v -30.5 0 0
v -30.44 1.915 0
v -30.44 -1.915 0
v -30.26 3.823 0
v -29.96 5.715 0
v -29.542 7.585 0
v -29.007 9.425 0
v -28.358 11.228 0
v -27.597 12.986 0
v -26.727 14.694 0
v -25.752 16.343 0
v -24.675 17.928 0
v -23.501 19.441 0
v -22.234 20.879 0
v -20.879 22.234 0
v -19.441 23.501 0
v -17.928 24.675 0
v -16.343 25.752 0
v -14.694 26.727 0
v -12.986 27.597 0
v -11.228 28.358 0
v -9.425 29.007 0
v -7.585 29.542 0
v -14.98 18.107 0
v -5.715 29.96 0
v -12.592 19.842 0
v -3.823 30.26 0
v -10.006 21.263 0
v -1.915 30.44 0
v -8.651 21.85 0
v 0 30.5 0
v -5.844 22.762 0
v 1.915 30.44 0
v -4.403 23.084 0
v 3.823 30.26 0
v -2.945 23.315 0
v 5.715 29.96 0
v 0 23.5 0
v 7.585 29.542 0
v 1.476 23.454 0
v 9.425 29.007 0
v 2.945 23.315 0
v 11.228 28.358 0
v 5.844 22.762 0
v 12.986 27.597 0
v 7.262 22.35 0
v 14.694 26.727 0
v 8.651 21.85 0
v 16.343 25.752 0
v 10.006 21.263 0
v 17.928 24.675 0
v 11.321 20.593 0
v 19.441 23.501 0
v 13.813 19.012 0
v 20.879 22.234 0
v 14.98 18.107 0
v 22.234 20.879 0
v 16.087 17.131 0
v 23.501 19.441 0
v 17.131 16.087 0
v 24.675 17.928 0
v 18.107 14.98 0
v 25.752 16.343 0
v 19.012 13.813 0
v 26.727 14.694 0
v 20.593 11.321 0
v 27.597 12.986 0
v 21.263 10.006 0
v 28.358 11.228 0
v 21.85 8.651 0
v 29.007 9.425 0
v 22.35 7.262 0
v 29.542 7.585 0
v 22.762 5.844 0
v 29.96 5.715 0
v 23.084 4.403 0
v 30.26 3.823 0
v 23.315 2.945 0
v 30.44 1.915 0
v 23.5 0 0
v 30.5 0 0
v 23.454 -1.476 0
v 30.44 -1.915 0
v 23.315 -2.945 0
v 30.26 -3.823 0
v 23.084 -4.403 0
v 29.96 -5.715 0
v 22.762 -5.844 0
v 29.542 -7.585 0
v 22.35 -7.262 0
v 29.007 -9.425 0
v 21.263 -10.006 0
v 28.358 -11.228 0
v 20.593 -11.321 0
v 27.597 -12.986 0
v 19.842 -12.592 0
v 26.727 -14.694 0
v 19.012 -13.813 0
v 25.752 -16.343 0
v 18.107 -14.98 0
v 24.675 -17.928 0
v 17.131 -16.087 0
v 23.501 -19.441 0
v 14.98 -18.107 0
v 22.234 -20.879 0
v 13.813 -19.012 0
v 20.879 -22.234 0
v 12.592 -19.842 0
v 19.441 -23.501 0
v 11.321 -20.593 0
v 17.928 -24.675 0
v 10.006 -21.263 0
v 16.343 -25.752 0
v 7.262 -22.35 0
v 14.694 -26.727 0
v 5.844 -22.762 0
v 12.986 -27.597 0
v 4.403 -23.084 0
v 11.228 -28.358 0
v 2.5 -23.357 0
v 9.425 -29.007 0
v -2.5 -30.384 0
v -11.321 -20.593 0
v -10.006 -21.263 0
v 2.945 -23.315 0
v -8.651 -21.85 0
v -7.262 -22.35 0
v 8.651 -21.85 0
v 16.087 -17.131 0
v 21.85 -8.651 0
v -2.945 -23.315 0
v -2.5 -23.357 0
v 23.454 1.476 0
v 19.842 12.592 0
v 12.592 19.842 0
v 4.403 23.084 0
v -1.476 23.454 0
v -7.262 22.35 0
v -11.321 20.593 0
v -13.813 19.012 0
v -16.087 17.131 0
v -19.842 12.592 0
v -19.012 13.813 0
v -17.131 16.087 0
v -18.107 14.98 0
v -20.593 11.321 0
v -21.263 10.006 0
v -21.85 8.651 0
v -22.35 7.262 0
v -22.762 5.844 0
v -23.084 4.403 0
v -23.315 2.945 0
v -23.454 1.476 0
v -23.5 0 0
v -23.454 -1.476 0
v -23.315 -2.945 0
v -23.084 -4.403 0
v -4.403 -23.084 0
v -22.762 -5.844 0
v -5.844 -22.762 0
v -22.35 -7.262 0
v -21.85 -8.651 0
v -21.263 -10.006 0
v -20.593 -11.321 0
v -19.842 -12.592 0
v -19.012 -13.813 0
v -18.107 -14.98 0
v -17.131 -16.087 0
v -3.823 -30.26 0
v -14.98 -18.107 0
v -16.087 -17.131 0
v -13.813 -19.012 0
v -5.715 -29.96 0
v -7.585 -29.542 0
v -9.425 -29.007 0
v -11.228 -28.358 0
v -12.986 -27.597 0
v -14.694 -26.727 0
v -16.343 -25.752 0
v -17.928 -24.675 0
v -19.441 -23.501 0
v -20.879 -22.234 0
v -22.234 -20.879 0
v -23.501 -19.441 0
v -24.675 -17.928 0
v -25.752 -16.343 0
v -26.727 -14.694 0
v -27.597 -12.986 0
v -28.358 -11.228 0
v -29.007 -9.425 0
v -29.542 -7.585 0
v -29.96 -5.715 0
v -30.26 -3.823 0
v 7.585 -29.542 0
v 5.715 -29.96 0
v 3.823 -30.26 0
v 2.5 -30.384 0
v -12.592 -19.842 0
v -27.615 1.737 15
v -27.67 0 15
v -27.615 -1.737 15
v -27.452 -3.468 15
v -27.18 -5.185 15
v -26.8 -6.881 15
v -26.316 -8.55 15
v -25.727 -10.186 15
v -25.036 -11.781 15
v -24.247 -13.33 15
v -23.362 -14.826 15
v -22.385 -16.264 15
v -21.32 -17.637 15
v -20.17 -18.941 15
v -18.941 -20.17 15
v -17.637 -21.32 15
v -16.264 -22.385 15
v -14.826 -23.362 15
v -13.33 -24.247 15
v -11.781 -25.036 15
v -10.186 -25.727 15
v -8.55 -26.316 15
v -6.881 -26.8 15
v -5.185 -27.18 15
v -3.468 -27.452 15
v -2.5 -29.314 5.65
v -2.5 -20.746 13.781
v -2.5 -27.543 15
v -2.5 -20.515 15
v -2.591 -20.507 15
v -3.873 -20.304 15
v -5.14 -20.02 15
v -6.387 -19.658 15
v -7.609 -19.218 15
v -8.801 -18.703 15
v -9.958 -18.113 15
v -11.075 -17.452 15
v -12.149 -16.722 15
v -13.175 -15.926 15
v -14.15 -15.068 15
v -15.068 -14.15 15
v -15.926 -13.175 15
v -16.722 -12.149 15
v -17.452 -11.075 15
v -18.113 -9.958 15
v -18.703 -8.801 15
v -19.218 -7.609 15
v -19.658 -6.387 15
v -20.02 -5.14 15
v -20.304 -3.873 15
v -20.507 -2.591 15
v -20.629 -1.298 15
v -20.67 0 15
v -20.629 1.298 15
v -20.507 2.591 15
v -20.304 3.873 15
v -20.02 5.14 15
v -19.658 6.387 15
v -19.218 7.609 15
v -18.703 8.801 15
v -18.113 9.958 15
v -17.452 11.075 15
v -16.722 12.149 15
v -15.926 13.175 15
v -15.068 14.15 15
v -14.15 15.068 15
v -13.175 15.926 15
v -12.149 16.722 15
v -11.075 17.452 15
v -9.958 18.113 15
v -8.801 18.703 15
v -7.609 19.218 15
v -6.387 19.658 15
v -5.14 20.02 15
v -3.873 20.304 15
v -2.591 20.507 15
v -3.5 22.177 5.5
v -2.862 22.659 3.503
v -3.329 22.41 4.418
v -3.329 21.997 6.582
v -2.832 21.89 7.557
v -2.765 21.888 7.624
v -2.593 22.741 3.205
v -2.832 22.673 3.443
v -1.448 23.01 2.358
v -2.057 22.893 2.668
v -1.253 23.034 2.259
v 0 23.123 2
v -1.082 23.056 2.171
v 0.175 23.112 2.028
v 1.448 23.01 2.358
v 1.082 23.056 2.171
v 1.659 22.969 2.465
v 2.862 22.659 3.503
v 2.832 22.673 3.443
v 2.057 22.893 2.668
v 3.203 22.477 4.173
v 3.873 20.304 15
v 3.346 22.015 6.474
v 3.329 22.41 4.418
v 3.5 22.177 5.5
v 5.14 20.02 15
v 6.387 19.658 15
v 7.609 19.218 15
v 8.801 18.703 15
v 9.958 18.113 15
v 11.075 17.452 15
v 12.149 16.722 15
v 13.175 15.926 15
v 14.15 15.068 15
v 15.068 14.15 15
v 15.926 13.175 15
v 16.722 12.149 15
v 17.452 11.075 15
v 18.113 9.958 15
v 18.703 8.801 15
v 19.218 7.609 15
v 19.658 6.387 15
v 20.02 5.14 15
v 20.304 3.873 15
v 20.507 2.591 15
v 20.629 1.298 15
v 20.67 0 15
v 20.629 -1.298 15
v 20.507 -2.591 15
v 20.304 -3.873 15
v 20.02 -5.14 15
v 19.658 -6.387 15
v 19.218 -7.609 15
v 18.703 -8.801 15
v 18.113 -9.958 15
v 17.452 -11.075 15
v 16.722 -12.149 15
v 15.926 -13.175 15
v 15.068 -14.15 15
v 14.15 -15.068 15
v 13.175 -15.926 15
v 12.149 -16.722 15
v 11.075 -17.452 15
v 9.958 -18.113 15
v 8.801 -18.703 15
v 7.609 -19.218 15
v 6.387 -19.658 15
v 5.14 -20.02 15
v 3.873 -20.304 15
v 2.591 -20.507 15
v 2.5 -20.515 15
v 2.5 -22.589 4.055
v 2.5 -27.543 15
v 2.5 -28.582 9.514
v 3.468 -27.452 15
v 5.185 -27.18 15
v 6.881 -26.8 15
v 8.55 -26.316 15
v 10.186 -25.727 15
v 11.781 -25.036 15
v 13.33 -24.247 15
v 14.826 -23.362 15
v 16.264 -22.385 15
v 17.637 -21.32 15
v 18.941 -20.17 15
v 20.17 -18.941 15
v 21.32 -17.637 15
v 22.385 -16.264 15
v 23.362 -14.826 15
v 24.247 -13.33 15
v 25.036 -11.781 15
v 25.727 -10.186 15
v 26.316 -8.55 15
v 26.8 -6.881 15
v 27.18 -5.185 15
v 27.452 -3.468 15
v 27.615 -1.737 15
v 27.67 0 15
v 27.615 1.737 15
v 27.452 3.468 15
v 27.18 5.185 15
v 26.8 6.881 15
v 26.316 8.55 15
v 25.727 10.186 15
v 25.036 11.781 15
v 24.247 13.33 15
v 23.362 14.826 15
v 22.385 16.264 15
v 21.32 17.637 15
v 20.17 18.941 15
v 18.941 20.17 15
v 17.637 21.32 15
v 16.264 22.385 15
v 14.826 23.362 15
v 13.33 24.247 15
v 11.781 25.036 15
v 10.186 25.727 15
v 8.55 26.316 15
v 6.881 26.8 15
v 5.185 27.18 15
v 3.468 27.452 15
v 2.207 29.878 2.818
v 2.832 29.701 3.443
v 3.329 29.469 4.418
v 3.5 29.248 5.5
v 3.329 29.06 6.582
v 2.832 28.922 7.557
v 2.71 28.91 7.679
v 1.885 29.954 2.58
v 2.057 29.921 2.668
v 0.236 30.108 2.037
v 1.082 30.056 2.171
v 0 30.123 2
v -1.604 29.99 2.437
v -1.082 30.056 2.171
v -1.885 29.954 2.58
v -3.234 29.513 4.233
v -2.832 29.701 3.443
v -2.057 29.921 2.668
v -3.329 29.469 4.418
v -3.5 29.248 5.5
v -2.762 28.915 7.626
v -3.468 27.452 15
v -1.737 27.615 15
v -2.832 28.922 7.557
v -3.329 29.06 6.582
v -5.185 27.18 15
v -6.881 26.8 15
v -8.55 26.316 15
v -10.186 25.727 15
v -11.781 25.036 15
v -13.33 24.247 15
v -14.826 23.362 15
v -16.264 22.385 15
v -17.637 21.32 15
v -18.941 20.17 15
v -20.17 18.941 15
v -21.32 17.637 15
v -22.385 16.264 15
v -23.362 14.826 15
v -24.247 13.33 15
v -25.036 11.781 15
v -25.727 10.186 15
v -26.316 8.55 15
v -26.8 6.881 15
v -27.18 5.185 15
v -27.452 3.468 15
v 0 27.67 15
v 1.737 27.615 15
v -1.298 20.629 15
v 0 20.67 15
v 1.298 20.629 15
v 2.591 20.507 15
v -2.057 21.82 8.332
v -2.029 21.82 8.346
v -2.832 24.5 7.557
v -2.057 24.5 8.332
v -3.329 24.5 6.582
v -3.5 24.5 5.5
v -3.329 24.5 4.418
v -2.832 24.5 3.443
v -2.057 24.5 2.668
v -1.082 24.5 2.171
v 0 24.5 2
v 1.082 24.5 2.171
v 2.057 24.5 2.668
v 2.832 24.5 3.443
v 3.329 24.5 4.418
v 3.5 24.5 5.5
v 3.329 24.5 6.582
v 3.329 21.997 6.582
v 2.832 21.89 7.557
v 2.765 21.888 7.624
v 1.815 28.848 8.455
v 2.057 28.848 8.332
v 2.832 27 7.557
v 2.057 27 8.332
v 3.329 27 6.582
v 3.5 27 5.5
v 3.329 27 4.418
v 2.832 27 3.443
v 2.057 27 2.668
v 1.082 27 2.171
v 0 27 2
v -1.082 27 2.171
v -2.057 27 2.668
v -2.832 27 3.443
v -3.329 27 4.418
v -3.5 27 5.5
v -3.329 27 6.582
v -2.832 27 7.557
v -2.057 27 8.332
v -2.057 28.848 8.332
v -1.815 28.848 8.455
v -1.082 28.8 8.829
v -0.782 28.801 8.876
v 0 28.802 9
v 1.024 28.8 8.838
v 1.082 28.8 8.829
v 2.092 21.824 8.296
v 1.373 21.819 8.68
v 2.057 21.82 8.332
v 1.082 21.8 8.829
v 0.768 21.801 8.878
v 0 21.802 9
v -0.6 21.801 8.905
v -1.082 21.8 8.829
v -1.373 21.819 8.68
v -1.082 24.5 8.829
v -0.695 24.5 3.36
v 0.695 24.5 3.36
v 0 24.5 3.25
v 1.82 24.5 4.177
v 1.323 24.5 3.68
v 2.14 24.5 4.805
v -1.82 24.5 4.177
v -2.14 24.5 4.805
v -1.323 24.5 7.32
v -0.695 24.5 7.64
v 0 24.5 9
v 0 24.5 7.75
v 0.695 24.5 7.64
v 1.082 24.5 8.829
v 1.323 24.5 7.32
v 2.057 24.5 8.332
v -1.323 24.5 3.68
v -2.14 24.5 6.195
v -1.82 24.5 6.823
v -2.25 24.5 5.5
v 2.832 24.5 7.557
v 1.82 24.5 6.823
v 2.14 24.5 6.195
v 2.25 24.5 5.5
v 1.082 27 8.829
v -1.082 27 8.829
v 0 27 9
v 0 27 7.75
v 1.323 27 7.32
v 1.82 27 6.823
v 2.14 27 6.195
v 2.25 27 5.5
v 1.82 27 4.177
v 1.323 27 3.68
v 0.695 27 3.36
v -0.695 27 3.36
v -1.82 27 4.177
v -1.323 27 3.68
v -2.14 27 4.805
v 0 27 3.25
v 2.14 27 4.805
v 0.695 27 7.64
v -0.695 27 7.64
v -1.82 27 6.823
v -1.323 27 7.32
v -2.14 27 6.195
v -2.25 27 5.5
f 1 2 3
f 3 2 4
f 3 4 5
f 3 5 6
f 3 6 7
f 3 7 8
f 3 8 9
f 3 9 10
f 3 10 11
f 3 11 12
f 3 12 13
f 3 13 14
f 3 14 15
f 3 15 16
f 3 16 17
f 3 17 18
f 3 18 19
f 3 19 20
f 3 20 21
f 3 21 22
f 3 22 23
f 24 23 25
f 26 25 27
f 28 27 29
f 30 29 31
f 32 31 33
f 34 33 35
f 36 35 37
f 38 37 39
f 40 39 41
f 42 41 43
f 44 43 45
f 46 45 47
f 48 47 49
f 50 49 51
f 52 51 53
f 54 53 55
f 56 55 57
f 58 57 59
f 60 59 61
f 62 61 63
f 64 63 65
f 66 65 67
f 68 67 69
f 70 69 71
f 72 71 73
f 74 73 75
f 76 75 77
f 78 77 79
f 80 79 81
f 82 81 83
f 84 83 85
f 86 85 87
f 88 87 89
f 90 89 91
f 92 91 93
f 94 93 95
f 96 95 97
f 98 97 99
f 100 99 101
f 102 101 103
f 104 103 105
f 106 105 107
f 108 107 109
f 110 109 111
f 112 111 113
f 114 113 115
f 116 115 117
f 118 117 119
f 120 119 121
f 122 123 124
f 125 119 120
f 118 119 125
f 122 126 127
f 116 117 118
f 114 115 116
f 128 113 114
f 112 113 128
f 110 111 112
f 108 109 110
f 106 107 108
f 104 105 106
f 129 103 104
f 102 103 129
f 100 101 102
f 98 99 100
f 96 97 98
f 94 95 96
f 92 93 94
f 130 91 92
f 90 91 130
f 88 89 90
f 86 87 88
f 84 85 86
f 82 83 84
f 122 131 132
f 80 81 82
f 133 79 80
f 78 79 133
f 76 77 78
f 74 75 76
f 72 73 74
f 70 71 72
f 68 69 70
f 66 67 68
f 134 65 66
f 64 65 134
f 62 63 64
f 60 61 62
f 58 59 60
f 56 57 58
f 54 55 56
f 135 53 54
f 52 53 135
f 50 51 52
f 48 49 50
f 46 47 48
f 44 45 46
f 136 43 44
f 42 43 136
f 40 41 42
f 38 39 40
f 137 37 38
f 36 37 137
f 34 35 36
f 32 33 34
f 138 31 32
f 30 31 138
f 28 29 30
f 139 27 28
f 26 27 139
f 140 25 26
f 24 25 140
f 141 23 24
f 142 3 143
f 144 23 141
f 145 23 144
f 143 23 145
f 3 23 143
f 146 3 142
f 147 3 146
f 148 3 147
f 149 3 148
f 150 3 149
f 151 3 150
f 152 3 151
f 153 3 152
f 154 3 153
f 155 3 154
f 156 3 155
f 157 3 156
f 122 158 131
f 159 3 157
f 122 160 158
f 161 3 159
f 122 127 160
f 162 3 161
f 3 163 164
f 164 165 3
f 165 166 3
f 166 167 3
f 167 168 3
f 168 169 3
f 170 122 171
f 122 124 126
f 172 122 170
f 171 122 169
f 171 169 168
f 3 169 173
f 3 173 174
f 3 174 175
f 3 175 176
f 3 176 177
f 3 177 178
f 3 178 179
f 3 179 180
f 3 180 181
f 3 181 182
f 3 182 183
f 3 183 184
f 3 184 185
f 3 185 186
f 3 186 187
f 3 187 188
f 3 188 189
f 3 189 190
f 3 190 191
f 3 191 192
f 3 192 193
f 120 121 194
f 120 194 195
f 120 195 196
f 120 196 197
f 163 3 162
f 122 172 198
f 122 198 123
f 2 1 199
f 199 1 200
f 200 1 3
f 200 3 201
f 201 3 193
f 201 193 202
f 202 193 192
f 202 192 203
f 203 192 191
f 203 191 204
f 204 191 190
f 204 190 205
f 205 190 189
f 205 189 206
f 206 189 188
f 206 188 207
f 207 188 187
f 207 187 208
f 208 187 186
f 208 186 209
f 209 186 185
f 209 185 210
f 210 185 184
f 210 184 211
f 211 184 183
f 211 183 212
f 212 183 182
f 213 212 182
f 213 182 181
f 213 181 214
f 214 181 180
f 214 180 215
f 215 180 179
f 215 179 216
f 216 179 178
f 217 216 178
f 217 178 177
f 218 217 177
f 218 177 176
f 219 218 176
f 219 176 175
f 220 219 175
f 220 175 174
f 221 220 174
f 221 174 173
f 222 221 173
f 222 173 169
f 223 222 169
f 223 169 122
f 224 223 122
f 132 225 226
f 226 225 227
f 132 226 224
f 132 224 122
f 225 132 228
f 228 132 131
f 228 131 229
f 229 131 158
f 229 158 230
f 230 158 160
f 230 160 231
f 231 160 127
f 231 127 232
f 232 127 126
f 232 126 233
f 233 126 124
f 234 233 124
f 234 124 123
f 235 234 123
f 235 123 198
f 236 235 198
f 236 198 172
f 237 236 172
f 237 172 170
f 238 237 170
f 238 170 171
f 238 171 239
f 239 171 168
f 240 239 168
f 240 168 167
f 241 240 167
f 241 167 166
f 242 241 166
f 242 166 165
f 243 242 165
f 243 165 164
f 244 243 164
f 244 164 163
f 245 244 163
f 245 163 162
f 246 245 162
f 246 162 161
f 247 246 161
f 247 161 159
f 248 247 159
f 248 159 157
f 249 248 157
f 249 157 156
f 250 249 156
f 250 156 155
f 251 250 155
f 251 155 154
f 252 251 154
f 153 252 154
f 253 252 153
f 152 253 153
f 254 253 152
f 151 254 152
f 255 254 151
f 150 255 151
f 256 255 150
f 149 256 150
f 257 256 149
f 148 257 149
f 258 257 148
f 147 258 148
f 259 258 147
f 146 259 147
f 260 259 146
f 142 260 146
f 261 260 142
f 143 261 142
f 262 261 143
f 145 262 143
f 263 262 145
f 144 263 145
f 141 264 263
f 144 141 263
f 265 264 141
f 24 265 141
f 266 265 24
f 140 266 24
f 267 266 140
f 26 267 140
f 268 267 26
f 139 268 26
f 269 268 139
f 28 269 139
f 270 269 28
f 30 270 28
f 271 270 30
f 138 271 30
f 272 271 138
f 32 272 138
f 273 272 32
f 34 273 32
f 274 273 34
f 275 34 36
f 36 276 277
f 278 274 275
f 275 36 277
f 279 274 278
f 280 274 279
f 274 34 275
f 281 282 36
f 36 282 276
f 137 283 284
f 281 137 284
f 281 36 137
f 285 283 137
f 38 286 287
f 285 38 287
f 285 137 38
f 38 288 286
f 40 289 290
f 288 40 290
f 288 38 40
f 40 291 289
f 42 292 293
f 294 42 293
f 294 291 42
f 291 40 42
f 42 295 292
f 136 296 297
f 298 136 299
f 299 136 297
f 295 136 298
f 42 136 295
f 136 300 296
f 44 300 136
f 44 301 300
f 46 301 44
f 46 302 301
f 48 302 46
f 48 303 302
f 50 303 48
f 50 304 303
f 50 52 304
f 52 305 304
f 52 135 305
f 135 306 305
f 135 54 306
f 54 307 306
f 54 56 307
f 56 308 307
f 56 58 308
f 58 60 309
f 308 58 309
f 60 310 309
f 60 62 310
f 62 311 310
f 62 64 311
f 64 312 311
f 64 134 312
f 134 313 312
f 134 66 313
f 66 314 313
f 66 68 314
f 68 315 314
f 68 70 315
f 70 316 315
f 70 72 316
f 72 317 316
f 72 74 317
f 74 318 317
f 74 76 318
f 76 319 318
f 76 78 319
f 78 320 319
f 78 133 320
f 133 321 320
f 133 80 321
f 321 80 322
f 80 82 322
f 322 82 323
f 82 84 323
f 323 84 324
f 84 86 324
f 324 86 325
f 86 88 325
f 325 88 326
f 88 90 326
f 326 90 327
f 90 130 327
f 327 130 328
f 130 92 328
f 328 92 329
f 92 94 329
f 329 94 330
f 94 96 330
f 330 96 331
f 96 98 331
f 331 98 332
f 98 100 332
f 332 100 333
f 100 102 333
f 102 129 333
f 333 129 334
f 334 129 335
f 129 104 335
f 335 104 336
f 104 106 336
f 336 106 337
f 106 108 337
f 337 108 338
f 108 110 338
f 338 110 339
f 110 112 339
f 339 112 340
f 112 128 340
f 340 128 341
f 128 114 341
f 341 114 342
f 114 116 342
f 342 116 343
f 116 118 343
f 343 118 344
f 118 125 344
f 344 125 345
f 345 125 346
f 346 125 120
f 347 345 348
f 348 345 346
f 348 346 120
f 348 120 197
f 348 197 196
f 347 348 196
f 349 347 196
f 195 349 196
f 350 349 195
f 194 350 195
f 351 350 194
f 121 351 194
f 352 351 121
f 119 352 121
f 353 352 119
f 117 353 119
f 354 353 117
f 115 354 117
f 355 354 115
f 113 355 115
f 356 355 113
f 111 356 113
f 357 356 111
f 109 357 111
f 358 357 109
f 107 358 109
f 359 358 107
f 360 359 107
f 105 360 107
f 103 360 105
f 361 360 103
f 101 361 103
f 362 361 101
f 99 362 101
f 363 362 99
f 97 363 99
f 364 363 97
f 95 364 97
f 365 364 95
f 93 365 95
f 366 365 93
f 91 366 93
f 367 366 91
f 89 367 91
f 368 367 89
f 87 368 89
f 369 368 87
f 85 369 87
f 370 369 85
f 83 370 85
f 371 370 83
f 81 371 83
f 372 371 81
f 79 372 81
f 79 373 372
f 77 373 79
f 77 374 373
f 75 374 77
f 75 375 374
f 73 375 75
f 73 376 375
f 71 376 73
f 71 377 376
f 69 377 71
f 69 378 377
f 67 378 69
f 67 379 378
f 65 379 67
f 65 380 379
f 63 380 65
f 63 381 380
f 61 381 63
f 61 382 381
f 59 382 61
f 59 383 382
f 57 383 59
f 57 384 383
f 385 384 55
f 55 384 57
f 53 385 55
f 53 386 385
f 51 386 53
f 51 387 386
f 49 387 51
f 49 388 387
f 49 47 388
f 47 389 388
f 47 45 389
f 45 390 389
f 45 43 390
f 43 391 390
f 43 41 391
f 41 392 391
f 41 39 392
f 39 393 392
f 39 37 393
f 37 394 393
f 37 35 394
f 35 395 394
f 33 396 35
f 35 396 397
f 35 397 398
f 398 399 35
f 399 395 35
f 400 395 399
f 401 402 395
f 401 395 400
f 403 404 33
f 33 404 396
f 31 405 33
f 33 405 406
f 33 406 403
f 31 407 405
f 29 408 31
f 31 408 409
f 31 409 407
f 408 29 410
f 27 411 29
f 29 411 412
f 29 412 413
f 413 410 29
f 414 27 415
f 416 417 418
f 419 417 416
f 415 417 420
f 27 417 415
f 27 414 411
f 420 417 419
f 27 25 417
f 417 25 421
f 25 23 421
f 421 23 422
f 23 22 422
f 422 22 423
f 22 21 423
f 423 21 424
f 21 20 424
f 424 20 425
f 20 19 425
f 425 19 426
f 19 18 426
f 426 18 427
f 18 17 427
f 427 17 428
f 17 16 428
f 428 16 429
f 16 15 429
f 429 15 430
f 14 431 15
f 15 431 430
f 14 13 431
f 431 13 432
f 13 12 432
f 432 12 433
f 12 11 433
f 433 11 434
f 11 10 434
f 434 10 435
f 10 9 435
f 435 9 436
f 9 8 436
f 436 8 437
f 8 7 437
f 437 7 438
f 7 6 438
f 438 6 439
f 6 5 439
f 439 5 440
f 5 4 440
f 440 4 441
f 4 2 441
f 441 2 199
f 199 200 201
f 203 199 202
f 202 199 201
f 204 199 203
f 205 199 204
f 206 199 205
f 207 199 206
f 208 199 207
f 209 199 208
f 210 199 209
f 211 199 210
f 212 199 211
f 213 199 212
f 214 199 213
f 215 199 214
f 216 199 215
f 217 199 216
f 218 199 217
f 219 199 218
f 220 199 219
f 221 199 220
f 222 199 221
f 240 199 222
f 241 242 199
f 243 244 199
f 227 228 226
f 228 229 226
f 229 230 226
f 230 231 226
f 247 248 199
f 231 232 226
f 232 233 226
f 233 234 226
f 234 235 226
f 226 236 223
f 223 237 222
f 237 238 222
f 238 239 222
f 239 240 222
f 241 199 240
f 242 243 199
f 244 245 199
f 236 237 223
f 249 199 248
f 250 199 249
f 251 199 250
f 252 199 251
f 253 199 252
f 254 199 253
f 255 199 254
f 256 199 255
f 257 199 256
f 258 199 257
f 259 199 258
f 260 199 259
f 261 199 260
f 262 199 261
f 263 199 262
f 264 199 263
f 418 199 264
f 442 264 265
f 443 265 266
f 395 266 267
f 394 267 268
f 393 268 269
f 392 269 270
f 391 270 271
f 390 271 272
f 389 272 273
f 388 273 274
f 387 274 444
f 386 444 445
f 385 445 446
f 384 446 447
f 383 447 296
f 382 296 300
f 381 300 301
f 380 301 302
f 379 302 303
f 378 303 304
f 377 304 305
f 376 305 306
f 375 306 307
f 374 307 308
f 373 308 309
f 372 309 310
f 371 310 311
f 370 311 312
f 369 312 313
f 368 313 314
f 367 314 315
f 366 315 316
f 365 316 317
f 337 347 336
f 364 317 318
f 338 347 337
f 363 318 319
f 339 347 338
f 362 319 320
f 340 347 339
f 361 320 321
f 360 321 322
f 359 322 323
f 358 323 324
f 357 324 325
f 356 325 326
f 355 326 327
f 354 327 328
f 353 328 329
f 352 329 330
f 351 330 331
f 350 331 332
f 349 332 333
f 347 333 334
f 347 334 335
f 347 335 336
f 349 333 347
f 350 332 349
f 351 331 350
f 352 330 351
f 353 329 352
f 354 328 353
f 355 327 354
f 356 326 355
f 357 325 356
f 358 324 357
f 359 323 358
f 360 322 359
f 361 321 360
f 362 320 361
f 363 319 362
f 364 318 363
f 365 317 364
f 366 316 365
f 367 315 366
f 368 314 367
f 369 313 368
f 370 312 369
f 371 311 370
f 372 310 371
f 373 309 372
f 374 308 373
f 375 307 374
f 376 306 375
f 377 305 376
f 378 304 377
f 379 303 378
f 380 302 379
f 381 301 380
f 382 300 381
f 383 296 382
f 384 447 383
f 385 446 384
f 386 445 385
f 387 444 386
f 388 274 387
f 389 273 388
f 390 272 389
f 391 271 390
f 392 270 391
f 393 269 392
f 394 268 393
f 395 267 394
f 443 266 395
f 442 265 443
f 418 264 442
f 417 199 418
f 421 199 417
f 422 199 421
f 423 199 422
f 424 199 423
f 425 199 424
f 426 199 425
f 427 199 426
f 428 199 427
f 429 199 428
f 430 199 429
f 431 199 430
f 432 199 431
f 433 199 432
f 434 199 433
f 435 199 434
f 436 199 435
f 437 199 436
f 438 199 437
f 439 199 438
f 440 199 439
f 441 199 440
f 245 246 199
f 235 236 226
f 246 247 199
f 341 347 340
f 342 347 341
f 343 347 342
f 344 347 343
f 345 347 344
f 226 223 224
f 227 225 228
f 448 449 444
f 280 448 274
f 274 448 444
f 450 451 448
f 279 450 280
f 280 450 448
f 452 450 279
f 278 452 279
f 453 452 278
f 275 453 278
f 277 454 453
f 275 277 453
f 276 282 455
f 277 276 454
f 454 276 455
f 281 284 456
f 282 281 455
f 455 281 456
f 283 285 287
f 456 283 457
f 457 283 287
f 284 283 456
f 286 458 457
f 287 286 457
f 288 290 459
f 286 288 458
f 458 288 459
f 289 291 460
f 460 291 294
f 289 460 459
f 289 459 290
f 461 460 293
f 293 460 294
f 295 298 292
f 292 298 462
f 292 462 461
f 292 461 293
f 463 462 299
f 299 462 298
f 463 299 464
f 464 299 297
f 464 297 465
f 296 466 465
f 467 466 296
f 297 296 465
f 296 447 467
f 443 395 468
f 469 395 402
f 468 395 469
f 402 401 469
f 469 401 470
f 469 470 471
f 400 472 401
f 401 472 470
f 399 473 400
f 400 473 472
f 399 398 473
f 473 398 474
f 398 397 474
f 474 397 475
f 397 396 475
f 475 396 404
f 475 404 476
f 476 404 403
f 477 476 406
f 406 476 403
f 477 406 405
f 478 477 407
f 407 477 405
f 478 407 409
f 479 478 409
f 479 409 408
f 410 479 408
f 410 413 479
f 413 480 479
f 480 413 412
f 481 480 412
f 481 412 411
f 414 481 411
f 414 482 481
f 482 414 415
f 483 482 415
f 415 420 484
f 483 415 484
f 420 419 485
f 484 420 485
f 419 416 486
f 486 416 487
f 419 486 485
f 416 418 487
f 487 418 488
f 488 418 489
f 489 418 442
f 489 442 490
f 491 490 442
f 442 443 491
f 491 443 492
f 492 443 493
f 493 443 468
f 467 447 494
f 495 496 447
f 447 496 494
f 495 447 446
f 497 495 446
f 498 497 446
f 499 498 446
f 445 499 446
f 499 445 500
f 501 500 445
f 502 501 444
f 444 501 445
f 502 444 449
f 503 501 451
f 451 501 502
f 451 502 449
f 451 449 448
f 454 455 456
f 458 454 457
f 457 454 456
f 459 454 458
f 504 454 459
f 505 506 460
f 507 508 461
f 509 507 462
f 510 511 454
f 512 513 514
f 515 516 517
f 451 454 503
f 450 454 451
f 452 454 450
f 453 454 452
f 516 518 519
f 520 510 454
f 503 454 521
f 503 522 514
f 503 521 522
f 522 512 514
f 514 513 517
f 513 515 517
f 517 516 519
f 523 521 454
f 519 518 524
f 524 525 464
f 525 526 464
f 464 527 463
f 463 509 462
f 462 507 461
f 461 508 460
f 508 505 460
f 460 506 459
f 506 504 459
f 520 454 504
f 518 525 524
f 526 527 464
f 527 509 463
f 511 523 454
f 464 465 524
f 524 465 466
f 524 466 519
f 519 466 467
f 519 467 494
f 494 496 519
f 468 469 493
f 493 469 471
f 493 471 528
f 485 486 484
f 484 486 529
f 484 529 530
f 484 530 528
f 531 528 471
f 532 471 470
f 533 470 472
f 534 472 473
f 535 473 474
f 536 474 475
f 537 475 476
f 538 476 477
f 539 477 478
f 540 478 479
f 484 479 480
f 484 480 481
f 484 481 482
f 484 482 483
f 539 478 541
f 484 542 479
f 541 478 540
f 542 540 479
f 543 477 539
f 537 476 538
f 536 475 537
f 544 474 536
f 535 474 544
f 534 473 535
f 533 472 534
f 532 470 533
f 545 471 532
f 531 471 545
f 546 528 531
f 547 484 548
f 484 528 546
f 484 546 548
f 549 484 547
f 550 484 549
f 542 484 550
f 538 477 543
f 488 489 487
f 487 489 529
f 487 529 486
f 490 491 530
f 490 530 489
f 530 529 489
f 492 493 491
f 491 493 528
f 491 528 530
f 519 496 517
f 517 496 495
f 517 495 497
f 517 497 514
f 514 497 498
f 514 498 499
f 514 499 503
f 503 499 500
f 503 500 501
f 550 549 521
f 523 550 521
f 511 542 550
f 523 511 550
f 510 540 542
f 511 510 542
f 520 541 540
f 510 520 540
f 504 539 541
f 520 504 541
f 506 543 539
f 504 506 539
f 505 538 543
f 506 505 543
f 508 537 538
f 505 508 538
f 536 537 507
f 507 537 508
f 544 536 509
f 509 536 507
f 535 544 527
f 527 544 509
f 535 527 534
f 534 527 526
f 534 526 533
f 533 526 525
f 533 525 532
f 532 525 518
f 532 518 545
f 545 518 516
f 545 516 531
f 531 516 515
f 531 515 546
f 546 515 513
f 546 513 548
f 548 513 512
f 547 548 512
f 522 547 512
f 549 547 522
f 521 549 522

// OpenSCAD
dBig = 50;
dSmall = 30;
hCup = 53;

slope = (dBig - dSmall)/hCup/2;
echo(slope);


holeD = 4.5; // hole for mounting screw
screwDepth = 2.5; // depth of screw
postD = 7; // diameter of post
postH = 3.5;  // depth of post

minT = 2; // minimum thickness of side

slotW = 5; // width of slot for screwdriver

cBig = 47/2;
h = 15;
cSmall = cBig-h*slope;

ringW = 7;

echo(cBig);
echo(cSmall);

difference() {
  cylinder(h, cBig+ringW, cSmall+ringW, $fn=100);
  cylinder(h, cBig, cSmall, $fn=100);


  // screwdiver/grip slot
  translate([-slotW/2,-cBig-ringW-2, 0]) cube([slotW,ringW+10,h]);

  // mounting post hole
#  translate([0, cBig+ringW, minT+postD/2]) rotate([90, 0,0]) 
  union() { 
    cylinder(r=postD/2, h=postH, $fn=20);
    cylinder(r=holeD/2, h=ringW+2, $fn=20);
    translate([0,0,postH+screwDepth]) cylinder(r=postD/2, h=20, $fn=20);
  }
}
